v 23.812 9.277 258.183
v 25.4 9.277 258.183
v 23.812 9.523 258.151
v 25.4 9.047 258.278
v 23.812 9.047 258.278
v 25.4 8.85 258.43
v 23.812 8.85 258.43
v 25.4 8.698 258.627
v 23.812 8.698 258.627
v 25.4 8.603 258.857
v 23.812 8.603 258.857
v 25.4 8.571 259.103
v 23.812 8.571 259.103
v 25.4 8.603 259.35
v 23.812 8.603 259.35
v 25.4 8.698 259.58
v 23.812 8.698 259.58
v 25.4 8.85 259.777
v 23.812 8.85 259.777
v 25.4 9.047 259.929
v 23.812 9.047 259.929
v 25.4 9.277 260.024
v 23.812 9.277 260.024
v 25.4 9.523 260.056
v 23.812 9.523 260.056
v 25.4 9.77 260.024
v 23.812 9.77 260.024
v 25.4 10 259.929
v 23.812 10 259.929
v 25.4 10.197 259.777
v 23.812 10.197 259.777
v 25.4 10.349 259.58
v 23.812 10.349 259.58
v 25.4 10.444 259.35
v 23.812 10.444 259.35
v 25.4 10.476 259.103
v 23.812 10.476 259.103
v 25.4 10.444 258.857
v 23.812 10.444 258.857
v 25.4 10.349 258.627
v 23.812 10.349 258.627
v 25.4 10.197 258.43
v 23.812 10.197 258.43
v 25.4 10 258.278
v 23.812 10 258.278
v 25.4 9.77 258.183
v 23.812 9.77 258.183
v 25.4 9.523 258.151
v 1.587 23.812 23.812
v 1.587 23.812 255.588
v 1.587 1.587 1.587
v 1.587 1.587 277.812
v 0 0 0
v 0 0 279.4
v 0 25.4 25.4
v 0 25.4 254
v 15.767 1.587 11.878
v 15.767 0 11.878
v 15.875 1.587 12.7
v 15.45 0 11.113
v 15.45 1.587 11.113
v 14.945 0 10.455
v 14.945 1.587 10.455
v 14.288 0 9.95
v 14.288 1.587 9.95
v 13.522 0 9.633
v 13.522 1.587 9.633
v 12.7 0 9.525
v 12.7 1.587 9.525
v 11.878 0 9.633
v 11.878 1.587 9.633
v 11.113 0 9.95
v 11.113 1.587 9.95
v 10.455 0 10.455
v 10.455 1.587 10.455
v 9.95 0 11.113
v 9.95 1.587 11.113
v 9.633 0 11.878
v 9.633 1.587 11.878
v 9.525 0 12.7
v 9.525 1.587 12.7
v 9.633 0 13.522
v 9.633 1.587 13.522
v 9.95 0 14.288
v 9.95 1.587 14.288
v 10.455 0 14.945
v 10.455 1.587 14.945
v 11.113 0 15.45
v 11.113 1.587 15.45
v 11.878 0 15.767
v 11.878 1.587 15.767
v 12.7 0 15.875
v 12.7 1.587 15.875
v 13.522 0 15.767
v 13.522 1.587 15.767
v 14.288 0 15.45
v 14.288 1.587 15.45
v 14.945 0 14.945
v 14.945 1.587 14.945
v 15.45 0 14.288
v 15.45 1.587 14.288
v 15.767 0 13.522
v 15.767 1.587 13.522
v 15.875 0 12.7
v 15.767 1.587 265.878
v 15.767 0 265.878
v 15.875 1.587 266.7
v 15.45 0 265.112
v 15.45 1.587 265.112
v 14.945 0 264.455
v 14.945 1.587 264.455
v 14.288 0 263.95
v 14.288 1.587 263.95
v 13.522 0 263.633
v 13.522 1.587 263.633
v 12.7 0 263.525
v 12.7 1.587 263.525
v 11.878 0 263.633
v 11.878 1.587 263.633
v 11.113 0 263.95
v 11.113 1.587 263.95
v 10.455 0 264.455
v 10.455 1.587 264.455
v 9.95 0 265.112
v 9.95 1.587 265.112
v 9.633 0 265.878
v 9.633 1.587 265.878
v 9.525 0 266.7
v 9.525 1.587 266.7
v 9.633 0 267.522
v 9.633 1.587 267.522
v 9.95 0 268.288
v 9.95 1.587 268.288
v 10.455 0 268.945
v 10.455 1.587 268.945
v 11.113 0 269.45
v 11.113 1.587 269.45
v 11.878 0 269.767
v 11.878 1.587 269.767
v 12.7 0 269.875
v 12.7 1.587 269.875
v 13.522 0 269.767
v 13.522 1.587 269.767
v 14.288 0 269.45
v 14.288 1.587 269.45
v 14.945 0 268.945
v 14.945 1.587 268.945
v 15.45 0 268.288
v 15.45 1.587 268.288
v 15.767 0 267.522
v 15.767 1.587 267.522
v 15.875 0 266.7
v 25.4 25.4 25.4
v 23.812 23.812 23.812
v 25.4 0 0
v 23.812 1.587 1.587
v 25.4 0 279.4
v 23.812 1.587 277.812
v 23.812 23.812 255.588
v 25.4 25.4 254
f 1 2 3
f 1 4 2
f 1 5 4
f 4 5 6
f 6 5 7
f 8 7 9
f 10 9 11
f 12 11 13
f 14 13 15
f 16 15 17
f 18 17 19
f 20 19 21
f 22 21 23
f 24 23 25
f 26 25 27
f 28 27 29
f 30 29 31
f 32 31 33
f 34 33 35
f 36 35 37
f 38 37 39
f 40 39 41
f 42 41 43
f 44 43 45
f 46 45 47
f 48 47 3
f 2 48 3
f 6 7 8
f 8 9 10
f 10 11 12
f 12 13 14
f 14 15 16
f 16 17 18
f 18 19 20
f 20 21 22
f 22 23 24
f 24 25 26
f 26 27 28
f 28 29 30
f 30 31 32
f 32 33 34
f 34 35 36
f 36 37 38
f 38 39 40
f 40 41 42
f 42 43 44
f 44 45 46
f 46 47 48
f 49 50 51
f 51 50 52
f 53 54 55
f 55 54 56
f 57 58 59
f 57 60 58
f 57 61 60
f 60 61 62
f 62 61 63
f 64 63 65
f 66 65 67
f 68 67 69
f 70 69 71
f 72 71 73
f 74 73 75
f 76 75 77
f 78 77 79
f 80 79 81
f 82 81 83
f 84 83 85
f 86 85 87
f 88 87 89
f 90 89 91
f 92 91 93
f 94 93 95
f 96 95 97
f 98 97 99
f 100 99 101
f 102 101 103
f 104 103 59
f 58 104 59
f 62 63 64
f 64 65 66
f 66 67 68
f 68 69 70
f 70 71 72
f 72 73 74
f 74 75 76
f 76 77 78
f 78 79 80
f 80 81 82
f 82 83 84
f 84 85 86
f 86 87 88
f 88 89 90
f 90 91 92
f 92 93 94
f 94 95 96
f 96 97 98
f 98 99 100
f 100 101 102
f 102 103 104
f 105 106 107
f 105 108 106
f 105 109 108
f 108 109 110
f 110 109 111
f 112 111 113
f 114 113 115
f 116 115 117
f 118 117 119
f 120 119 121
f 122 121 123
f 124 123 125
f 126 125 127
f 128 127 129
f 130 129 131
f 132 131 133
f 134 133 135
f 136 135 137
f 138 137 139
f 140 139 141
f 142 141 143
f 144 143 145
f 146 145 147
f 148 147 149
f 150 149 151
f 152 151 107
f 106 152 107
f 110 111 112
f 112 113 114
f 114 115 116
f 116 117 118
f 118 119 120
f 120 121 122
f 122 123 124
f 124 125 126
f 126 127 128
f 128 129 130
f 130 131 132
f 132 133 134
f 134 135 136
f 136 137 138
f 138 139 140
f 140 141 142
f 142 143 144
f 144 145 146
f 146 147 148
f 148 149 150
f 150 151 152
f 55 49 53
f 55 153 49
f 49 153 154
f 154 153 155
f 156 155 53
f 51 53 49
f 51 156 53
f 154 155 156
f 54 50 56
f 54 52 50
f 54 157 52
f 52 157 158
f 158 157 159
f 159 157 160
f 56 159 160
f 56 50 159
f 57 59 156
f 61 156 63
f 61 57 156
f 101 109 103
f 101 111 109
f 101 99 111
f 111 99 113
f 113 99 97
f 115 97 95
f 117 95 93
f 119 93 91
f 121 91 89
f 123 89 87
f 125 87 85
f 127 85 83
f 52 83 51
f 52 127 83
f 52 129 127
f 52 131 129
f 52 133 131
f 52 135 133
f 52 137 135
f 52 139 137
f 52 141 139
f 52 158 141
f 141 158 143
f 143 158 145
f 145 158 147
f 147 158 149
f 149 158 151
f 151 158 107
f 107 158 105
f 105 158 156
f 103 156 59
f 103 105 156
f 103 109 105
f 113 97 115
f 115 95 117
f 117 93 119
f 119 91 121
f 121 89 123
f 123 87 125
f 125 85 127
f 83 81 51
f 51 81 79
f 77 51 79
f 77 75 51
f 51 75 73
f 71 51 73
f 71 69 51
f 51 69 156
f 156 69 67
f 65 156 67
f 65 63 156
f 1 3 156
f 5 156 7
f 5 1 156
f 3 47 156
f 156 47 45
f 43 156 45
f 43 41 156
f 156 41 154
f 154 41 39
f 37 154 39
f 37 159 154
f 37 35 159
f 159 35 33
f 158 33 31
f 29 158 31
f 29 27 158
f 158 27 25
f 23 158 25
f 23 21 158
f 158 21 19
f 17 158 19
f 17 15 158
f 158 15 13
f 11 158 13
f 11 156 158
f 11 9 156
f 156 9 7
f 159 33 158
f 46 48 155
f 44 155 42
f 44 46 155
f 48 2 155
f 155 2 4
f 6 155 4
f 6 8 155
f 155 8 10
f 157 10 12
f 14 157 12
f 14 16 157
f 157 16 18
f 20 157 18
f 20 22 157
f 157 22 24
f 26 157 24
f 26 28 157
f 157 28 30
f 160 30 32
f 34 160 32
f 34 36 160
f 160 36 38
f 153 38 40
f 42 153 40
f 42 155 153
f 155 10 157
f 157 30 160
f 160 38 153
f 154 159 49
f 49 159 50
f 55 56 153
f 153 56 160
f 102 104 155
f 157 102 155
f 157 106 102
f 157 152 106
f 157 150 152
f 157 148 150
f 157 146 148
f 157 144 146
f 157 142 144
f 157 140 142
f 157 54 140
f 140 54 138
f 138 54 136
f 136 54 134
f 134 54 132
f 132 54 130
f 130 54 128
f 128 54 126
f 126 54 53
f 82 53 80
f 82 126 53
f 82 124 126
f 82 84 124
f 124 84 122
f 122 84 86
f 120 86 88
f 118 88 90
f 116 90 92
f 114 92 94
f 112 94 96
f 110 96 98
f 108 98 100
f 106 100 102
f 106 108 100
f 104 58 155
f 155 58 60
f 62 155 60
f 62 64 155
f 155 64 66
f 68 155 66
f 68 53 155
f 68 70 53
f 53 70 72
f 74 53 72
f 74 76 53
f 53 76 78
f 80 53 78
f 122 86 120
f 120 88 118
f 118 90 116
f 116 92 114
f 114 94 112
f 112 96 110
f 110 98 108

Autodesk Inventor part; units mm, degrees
ref_plane "YZ Plane" through (0, 0, 0) normal (1, 0, 0) x (0, 1, 0)
ref_plane "XZ Plane" through (0, 0, 0) normal (0, 1, 0) x (-1, 0, 0)
ref_plane "XY Plane" through (0, 0, 0) normal (0, 0, 1) x (1, 0, 0)
sketch "Sketch1" plane through (0, 0, 0) normal (0, 0, 1) x (1, 0, 0)
  line L0 (0, 0) -> (25.4, 0)
  line L1 (25.4, 0) -> (25.4, 25.4)
  line L2 (25.4, 25.4) -> (0, 25.4)
  line L3 (0, 25.4) -> (0, 0)
  dimension "d0" = 25.4
  dimension "d1" = 25.4
extrude "Extrusion1" add sketch "Sketch1" along normal blind 279.4
shell "Shell1" thickness 1.5875 removed faces 2 at (8.4667, 16.9333, 0) at (8.4667, 16.9333, 279.4)
sketch "Sketch2" plane through (25.4, 0, 0) normal (1, 0, 0) x (0, 0, -1)
  line L0 (-279.4, 25.4) -> (-279.4, 0) projected
  line L1 (0, 0) -> (0, 25.4) projected
  line L2 (0, 25.4) -> (-279.4, 25.4) projected
  line L3 (-279.4, 0) -> (-279.4, 25.4)
  line L4 (-254, 25.4) -> (-279.4, 25.4)
  line L5 (-279.4, 0) -> (-254, 25.4)
  line L6 (0, 25.4) -> (0, 0)
  line L7 (-25.4, 25.4) -> (0, 0)
  line L8 (-25.4, 25.4) -> (0, 25.4)
  dimension "d5" = 25.4
  dimension "d6" = 25.4
extrude "Extrusion2" cut sketch "Sketch2" against normal through all
sketch "Sketch3" plane through (0, 0, 279.4) normal (0, -1, 0) x (1, 0, 0)
  line L0 (25.4, 0) -> (0, 0) projected
  line L1 (0, -279.4) -> (25.4, -279.4) projected
  line L2 (25.4, -279.4) -> (25.4, 0) projected
  circle A0 centre (12.7, -12.7) radius 3.175
  circle A1 centre (12.7, -266.7) radius 3.175
  dimension "d9" = 6.35
  dimension "d10" = 12.7
  dimension "d11" = 12.7
  dimension "d12" = 12.7
  dimension "d13" = 12.7
extrude "Extrusion3" cut sketch "Sketch3" against normal through all
sketch "Sketch4" plane through (25.4, 0, 279.4) normal (1, 0, 0) x (0, 0, -1)
  circle A0 centre (20.2966, 9.5234) radius 0.9528
extrude "Extrusion4" cut sketch "Sketch4" against normal up to next
properties part number "Frame_LowerCrossSupport" material "Aluminum-6061"
